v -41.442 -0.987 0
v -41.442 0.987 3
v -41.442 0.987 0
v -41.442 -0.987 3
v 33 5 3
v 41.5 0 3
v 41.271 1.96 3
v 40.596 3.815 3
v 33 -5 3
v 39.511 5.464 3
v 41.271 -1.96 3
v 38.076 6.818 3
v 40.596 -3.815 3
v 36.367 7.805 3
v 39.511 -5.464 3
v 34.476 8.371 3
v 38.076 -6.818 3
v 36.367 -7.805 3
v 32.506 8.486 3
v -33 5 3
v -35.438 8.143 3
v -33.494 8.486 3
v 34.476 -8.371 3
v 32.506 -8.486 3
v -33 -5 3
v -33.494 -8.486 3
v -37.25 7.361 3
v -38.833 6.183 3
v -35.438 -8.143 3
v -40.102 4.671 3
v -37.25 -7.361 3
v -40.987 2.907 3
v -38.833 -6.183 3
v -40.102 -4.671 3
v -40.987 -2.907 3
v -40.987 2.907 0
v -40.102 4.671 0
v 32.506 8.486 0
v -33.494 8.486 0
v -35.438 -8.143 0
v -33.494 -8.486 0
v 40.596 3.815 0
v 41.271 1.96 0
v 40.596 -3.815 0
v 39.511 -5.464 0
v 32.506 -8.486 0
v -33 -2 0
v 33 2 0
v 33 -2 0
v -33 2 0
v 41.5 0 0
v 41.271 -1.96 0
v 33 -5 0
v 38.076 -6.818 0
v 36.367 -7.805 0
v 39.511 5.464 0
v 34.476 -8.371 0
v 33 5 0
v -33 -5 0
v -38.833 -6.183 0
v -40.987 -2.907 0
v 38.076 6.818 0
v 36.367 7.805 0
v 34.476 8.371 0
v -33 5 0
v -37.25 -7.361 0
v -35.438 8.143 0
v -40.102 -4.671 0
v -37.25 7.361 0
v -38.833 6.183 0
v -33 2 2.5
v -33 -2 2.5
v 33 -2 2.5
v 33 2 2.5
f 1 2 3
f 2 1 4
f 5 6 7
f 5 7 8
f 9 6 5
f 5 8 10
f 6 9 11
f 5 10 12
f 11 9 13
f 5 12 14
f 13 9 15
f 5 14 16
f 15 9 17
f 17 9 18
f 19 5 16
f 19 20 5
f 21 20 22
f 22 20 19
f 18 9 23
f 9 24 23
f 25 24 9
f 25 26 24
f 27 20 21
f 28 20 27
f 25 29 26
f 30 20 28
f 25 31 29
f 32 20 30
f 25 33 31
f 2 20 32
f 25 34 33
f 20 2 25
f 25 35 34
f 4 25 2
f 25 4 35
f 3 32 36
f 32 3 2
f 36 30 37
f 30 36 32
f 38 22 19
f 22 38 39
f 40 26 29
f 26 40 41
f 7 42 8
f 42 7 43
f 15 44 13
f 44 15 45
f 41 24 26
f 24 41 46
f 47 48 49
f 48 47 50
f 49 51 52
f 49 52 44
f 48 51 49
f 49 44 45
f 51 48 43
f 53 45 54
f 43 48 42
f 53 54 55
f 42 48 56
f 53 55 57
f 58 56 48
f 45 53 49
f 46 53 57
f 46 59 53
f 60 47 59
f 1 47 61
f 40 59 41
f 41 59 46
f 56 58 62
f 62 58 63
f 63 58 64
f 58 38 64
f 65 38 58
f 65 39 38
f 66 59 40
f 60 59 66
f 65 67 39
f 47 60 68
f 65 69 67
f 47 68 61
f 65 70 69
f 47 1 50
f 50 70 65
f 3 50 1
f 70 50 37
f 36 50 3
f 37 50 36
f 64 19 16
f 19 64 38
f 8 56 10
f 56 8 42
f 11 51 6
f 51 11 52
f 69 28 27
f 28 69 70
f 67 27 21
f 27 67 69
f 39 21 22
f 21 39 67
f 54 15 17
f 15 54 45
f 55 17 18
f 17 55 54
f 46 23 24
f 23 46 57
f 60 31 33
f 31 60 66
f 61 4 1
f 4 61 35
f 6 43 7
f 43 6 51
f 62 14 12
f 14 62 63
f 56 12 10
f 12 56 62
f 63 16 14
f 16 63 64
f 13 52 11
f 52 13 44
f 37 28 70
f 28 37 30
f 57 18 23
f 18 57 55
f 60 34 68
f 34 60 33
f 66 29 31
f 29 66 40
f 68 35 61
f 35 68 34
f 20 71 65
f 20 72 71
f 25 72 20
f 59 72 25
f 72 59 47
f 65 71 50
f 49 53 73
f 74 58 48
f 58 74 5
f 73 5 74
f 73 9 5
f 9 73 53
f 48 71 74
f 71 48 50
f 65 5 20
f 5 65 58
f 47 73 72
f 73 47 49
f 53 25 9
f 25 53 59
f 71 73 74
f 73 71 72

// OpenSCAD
difference() {
    hull() {
        translate([-33,0,0]) cylinder(h=3,d=17);
        translate([33,0,0]) cylinder(h=3,d=17);
    }
    translate([-33,2,-.5]) cube([66,3,4]);
    translate([-33,-5,-.5]) cube([66,3,4]);
    #translate([0,0,3.5]) cube([66,4,2], center=true);
}
